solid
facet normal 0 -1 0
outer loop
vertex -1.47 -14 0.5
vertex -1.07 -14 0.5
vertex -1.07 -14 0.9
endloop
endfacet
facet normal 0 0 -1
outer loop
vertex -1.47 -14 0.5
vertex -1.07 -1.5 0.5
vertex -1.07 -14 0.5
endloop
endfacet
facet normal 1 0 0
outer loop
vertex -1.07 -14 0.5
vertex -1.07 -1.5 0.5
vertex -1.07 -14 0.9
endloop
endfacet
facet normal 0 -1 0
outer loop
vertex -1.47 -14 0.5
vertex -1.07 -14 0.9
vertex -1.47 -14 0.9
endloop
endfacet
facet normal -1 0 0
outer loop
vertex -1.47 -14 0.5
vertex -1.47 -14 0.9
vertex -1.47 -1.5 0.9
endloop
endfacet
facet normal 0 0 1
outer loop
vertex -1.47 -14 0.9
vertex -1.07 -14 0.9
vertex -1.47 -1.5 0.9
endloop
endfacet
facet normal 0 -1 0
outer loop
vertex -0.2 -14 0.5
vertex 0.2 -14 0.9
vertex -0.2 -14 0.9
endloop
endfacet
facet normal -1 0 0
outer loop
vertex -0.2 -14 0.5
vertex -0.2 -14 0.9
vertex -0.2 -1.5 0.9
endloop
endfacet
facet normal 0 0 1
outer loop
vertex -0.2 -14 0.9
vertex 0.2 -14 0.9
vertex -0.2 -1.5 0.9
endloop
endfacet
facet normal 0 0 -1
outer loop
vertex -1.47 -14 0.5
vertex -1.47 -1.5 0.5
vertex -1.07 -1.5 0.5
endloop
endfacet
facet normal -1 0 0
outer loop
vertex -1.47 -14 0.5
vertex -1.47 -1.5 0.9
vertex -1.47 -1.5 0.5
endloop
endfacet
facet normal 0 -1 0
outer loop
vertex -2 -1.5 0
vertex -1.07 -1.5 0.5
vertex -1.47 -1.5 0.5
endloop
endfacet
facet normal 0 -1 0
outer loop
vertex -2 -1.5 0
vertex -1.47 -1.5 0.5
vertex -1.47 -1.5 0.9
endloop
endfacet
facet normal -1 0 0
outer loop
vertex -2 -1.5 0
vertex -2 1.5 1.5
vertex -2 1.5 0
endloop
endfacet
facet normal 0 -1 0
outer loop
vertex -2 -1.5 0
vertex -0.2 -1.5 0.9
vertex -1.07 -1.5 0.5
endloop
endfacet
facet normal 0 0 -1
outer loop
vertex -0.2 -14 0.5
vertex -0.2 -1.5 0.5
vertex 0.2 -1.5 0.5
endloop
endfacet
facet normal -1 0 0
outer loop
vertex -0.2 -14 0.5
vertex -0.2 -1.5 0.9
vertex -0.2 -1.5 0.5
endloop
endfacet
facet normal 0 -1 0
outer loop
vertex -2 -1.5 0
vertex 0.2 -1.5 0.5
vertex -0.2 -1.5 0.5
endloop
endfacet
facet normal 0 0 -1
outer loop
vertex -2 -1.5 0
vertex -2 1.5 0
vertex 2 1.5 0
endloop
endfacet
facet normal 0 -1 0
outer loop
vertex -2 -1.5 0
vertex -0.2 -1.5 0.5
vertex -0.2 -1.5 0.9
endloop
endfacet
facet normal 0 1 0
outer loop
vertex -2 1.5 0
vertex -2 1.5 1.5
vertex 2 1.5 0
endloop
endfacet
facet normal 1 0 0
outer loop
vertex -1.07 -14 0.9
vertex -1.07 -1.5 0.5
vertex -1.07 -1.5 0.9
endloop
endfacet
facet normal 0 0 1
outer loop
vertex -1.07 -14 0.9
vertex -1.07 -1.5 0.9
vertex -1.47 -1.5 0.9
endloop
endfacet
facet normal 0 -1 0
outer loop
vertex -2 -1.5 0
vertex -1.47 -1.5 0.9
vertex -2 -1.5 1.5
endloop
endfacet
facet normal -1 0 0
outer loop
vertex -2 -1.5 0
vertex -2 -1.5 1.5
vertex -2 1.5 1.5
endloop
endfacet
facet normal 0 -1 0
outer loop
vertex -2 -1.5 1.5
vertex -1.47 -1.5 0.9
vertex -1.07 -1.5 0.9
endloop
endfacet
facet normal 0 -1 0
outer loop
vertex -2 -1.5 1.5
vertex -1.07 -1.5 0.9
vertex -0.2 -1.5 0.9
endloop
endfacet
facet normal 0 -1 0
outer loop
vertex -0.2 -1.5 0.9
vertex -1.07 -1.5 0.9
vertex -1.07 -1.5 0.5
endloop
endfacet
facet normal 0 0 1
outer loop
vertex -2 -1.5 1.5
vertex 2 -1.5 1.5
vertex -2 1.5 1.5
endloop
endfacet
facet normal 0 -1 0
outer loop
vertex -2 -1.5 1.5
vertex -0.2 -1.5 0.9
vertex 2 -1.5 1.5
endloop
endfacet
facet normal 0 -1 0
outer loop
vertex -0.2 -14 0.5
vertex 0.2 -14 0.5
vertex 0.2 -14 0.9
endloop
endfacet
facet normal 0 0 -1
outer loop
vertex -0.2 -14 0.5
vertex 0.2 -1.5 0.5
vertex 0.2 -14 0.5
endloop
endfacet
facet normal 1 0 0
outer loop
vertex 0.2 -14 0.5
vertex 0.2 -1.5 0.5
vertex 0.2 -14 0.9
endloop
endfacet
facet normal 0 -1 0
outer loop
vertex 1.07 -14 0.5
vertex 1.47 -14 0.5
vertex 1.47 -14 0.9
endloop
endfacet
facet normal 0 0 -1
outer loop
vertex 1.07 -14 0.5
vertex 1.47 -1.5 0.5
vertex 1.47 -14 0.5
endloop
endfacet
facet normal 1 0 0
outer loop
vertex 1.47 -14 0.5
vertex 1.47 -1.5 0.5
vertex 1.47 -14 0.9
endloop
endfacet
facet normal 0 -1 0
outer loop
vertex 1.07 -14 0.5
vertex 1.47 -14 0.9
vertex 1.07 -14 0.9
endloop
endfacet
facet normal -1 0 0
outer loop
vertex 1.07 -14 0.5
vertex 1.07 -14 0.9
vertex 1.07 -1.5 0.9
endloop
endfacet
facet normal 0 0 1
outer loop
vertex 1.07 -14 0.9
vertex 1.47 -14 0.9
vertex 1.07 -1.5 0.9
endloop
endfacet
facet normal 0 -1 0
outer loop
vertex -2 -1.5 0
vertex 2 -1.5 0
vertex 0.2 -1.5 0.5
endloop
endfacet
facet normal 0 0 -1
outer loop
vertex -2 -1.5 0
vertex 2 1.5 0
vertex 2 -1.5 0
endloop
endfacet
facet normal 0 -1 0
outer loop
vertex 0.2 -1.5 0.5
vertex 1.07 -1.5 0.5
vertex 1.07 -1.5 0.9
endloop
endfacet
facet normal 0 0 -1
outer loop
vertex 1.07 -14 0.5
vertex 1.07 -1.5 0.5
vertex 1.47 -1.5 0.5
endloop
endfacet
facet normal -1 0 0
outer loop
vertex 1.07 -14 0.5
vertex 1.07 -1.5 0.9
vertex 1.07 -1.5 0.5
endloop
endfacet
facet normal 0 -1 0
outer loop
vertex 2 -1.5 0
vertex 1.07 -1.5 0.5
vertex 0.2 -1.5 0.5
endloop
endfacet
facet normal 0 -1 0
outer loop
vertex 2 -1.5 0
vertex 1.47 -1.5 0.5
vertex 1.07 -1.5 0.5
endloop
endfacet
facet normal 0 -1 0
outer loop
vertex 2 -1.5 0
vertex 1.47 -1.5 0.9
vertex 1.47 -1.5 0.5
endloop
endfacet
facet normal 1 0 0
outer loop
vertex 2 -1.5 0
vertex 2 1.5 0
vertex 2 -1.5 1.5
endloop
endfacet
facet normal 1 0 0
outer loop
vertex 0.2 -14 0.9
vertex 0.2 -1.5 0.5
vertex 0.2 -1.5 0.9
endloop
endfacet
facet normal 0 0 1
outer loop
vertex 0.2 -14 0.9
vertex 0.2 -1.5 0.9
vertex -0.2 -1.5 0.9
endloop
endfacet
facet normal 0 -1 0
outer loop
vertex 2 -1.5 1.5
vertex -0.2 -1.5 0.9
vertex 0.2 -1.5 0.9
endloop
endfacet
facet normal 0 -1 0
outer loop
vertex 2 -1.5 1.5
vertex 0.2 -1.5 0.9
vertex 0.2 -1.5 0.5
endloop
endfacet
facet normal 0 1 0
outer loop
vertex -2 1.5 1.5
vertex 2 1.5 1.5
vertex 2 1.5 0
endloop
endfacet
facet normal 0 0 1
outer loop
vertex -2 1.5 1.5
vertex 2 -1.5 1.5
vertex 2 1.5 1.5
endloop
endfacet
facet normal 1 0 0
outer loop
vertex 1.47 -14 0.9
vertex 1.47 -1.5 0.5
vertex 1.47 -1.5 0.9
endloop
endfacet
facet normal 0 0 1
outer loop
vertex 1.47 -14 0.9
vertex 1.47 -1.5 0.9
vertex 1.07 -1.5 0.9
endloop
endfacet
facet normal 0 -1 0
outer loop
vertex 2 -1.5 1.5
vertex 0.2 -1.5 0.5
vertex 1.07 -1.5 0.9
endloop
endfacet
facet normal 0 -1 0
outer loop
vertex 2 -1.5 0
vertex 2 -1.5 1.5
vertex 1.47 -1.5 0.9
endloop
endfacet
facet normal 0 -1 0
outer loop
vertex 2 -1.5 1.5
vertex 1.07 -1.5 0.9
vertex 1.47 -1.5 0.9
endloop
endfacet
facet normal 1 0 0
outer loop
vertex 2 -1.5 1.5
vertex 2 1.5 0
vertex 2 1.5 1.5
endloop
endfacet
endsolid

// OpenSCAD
// file: ../lib/lib.scad
// Shared helpers. Include AFTER params.scad (needs TOL, M3_* etc.).
$fa = 4; $fs = 0.5;

module rrect(size, r) {            // 2D rounded rectangle, centred
    r2 = min(r, min(size[0], size[1]) / 2 - 0.001);
    offset(r = r2) square([size[0] - 2 * r2, size[1] - 2 * r2], center = true);
}
module rbox(size, r, center_xy = true) {   // box with rounded vertical edges
    translate(center_xy ? [0, 0, 0] : [size[0] / 2, size[1] / 2, 0])
        linear_extrude(size[2]) rrect([size[0], size[1]], r);
}
module rbox_at(x0, x1, y0, y1, z0, z1, r = 0.01) {
    translate([(x0 + x1) / 2, (y0 + y1) / 2, z0]) rbox([x1 - x0, y1 - y0, z1 - z0], r);
}
module box_at(x0, x1, y0, y1, z0, z1) { translate([x0, y0, z0]) cube([x1 - x0, y1 - y0, z1 - z0]); }

module ring(ro, ri, h) { difference() { cylinder(r = ro, h = h); translate([0, 0, -1]) cylinder(r = ri, h = h + 2); } }
module ring_sector(ro, ri, h, a0, a1) {
    intersection() {
        ring(ro, ri, h);
        linear_extrude(h) polygon(concat([[0, 0]], [for (a = [a0 : (a1 - a0) / 24 : a1]) 2 * ro * [cos(a), sin(a)]]));
    }
}
// teardrop hole along an axis lying horizontal (axis = Y after rotation), printable w/o support
module teardrop2d(d) { union() { circle(d = d); rotate(45) square(d / 2); } }
// vertical heat-set insert hole, opening at z=0 going +z (depth l)
module insert_hole(l = M3_INSERT_L) { translate([0, 0, -EPS]) cylinder(d = M3_INSERT_D, h = l + EPS); }
module m3_clear(l) { translate([0, 0, -EPS]) cylinder(d = M3_CLEAR, h = l + 2 * EPS); }
module m3_csk(l) {  // countersunk clearance from z=0 upward, head at z=0 side
    translate([0, 0, -EPS]) { cylinder(d = M3_CLEAR, h = l + 2 * EPS); cylinder(d1 = 6.4, d2 = M3_CLEAR, h = 1.7); }
}
module card2d() { rrect([CARD_L, CARD_W], CARD_R); }
module card_at(cy, z) { translate([0, cy, z]) linear_extrude(CARD_T) card2d(); }

// ---- gears ----
function _inv(a) = tan(a) - a * PI_ / 180;           // involute function, a in deg
function _invpt(rb, r, ang0, s) = let(al = acos(rb / r), th = ang0 - s * (_inv(al) * 180 / PI_)) [r * cos(th), r * sin(th)];
module involute_gear2d(m, z, pa = 20, clearance = 0.05) {
    rp = m * z / 2; rb = rp * cos(pa); ra = rp + m - clearance; rf = rp - 1.25 * m;
    half = 90 / z + _inv(pa) * 180 / PI_;            // tooth half-angle at base (deg)
    n = 8;
    rs = [for (i = [0 : n]) max(rb, rf) + (ra - max(rb, rf)) * i / n];
    union() {
        circle(r = rf, $fn = z * 4);
        for (k = [0 : z - 1]) rotate(k * 360 / z) polygon(concat(
            [[rf * cos(-half), rf * sin(-half)]],
            [for (r = rs) let(p = _invpt(rb, r, half, 1)) [p[0], -p[1]]],
            [for (i = [n : -1 : 0]) _invpt(rb, rs[i], half, 1)],
            [[rf * cos(half), rf * sin(half)]]));
    }
}
// straight gear rack (2D in XY: teeth along +x, pointing -y, pitch line at y=0)
module gear_rack2d(m, len, back = 3) {
    p = PI_ * m; ad = m; de = 1.25 * m; t = tan(20);
    n = ceil(len / p) + 1;
    intersection() {
        union() {
            translate([0, de]) square([len, back]);
            for (i = [0 : n]) translate([i * p - p / 4, 0]) polygon([
                [-(p / 4 + de * t), de + 0.01], [p / 4 + de * t + 0.01, de + 0.01],
                [p / 4 - ad * t, -ad], [-(p / 4 - ad * t), -ad] ]);
        }
        translate([0, -ad - 1]) square([len, ad + de + back + 2]);
    }
}
// GT2 belt-tooth profile ring (teeth outward), 2D
module gt2_ring2d(n, r_land, ri) {
    union() {
        difference() { circle(r = r_land + 0.01, $fn = n * 2); circle(r = ri, $fn = n * 2); }
        for (k = [0 : n - 1]) rotate(k * 360 / n)
            translate([r_land, 0]) hull() { translate([-0.2, 0]) square([0.2, 1.0], center = true); translate([0.25, 0]) circle(r = 0.5, $fn = 12); }
    }
}
// main file
// Vendor model: A3144 hall-effect switch, TO-92S, bent flat. Local: sensing face up, centred, body z 0..1.5.
include <../params.scad>
include <../lib/lib.scad>
module vendor_a3144() {
    color([0.1,0.1,0.1]) translate([-2, -1.5, 0]) cube([4, 3, 1.5]);
    color([0.8,0.8,0.8]) for (x = [-1.27, 0, 1.27]) translate([x - 0.2, -14, 0.5]) cube([0.4, 12.5, 0.4]);
}

vendor_a3144();
